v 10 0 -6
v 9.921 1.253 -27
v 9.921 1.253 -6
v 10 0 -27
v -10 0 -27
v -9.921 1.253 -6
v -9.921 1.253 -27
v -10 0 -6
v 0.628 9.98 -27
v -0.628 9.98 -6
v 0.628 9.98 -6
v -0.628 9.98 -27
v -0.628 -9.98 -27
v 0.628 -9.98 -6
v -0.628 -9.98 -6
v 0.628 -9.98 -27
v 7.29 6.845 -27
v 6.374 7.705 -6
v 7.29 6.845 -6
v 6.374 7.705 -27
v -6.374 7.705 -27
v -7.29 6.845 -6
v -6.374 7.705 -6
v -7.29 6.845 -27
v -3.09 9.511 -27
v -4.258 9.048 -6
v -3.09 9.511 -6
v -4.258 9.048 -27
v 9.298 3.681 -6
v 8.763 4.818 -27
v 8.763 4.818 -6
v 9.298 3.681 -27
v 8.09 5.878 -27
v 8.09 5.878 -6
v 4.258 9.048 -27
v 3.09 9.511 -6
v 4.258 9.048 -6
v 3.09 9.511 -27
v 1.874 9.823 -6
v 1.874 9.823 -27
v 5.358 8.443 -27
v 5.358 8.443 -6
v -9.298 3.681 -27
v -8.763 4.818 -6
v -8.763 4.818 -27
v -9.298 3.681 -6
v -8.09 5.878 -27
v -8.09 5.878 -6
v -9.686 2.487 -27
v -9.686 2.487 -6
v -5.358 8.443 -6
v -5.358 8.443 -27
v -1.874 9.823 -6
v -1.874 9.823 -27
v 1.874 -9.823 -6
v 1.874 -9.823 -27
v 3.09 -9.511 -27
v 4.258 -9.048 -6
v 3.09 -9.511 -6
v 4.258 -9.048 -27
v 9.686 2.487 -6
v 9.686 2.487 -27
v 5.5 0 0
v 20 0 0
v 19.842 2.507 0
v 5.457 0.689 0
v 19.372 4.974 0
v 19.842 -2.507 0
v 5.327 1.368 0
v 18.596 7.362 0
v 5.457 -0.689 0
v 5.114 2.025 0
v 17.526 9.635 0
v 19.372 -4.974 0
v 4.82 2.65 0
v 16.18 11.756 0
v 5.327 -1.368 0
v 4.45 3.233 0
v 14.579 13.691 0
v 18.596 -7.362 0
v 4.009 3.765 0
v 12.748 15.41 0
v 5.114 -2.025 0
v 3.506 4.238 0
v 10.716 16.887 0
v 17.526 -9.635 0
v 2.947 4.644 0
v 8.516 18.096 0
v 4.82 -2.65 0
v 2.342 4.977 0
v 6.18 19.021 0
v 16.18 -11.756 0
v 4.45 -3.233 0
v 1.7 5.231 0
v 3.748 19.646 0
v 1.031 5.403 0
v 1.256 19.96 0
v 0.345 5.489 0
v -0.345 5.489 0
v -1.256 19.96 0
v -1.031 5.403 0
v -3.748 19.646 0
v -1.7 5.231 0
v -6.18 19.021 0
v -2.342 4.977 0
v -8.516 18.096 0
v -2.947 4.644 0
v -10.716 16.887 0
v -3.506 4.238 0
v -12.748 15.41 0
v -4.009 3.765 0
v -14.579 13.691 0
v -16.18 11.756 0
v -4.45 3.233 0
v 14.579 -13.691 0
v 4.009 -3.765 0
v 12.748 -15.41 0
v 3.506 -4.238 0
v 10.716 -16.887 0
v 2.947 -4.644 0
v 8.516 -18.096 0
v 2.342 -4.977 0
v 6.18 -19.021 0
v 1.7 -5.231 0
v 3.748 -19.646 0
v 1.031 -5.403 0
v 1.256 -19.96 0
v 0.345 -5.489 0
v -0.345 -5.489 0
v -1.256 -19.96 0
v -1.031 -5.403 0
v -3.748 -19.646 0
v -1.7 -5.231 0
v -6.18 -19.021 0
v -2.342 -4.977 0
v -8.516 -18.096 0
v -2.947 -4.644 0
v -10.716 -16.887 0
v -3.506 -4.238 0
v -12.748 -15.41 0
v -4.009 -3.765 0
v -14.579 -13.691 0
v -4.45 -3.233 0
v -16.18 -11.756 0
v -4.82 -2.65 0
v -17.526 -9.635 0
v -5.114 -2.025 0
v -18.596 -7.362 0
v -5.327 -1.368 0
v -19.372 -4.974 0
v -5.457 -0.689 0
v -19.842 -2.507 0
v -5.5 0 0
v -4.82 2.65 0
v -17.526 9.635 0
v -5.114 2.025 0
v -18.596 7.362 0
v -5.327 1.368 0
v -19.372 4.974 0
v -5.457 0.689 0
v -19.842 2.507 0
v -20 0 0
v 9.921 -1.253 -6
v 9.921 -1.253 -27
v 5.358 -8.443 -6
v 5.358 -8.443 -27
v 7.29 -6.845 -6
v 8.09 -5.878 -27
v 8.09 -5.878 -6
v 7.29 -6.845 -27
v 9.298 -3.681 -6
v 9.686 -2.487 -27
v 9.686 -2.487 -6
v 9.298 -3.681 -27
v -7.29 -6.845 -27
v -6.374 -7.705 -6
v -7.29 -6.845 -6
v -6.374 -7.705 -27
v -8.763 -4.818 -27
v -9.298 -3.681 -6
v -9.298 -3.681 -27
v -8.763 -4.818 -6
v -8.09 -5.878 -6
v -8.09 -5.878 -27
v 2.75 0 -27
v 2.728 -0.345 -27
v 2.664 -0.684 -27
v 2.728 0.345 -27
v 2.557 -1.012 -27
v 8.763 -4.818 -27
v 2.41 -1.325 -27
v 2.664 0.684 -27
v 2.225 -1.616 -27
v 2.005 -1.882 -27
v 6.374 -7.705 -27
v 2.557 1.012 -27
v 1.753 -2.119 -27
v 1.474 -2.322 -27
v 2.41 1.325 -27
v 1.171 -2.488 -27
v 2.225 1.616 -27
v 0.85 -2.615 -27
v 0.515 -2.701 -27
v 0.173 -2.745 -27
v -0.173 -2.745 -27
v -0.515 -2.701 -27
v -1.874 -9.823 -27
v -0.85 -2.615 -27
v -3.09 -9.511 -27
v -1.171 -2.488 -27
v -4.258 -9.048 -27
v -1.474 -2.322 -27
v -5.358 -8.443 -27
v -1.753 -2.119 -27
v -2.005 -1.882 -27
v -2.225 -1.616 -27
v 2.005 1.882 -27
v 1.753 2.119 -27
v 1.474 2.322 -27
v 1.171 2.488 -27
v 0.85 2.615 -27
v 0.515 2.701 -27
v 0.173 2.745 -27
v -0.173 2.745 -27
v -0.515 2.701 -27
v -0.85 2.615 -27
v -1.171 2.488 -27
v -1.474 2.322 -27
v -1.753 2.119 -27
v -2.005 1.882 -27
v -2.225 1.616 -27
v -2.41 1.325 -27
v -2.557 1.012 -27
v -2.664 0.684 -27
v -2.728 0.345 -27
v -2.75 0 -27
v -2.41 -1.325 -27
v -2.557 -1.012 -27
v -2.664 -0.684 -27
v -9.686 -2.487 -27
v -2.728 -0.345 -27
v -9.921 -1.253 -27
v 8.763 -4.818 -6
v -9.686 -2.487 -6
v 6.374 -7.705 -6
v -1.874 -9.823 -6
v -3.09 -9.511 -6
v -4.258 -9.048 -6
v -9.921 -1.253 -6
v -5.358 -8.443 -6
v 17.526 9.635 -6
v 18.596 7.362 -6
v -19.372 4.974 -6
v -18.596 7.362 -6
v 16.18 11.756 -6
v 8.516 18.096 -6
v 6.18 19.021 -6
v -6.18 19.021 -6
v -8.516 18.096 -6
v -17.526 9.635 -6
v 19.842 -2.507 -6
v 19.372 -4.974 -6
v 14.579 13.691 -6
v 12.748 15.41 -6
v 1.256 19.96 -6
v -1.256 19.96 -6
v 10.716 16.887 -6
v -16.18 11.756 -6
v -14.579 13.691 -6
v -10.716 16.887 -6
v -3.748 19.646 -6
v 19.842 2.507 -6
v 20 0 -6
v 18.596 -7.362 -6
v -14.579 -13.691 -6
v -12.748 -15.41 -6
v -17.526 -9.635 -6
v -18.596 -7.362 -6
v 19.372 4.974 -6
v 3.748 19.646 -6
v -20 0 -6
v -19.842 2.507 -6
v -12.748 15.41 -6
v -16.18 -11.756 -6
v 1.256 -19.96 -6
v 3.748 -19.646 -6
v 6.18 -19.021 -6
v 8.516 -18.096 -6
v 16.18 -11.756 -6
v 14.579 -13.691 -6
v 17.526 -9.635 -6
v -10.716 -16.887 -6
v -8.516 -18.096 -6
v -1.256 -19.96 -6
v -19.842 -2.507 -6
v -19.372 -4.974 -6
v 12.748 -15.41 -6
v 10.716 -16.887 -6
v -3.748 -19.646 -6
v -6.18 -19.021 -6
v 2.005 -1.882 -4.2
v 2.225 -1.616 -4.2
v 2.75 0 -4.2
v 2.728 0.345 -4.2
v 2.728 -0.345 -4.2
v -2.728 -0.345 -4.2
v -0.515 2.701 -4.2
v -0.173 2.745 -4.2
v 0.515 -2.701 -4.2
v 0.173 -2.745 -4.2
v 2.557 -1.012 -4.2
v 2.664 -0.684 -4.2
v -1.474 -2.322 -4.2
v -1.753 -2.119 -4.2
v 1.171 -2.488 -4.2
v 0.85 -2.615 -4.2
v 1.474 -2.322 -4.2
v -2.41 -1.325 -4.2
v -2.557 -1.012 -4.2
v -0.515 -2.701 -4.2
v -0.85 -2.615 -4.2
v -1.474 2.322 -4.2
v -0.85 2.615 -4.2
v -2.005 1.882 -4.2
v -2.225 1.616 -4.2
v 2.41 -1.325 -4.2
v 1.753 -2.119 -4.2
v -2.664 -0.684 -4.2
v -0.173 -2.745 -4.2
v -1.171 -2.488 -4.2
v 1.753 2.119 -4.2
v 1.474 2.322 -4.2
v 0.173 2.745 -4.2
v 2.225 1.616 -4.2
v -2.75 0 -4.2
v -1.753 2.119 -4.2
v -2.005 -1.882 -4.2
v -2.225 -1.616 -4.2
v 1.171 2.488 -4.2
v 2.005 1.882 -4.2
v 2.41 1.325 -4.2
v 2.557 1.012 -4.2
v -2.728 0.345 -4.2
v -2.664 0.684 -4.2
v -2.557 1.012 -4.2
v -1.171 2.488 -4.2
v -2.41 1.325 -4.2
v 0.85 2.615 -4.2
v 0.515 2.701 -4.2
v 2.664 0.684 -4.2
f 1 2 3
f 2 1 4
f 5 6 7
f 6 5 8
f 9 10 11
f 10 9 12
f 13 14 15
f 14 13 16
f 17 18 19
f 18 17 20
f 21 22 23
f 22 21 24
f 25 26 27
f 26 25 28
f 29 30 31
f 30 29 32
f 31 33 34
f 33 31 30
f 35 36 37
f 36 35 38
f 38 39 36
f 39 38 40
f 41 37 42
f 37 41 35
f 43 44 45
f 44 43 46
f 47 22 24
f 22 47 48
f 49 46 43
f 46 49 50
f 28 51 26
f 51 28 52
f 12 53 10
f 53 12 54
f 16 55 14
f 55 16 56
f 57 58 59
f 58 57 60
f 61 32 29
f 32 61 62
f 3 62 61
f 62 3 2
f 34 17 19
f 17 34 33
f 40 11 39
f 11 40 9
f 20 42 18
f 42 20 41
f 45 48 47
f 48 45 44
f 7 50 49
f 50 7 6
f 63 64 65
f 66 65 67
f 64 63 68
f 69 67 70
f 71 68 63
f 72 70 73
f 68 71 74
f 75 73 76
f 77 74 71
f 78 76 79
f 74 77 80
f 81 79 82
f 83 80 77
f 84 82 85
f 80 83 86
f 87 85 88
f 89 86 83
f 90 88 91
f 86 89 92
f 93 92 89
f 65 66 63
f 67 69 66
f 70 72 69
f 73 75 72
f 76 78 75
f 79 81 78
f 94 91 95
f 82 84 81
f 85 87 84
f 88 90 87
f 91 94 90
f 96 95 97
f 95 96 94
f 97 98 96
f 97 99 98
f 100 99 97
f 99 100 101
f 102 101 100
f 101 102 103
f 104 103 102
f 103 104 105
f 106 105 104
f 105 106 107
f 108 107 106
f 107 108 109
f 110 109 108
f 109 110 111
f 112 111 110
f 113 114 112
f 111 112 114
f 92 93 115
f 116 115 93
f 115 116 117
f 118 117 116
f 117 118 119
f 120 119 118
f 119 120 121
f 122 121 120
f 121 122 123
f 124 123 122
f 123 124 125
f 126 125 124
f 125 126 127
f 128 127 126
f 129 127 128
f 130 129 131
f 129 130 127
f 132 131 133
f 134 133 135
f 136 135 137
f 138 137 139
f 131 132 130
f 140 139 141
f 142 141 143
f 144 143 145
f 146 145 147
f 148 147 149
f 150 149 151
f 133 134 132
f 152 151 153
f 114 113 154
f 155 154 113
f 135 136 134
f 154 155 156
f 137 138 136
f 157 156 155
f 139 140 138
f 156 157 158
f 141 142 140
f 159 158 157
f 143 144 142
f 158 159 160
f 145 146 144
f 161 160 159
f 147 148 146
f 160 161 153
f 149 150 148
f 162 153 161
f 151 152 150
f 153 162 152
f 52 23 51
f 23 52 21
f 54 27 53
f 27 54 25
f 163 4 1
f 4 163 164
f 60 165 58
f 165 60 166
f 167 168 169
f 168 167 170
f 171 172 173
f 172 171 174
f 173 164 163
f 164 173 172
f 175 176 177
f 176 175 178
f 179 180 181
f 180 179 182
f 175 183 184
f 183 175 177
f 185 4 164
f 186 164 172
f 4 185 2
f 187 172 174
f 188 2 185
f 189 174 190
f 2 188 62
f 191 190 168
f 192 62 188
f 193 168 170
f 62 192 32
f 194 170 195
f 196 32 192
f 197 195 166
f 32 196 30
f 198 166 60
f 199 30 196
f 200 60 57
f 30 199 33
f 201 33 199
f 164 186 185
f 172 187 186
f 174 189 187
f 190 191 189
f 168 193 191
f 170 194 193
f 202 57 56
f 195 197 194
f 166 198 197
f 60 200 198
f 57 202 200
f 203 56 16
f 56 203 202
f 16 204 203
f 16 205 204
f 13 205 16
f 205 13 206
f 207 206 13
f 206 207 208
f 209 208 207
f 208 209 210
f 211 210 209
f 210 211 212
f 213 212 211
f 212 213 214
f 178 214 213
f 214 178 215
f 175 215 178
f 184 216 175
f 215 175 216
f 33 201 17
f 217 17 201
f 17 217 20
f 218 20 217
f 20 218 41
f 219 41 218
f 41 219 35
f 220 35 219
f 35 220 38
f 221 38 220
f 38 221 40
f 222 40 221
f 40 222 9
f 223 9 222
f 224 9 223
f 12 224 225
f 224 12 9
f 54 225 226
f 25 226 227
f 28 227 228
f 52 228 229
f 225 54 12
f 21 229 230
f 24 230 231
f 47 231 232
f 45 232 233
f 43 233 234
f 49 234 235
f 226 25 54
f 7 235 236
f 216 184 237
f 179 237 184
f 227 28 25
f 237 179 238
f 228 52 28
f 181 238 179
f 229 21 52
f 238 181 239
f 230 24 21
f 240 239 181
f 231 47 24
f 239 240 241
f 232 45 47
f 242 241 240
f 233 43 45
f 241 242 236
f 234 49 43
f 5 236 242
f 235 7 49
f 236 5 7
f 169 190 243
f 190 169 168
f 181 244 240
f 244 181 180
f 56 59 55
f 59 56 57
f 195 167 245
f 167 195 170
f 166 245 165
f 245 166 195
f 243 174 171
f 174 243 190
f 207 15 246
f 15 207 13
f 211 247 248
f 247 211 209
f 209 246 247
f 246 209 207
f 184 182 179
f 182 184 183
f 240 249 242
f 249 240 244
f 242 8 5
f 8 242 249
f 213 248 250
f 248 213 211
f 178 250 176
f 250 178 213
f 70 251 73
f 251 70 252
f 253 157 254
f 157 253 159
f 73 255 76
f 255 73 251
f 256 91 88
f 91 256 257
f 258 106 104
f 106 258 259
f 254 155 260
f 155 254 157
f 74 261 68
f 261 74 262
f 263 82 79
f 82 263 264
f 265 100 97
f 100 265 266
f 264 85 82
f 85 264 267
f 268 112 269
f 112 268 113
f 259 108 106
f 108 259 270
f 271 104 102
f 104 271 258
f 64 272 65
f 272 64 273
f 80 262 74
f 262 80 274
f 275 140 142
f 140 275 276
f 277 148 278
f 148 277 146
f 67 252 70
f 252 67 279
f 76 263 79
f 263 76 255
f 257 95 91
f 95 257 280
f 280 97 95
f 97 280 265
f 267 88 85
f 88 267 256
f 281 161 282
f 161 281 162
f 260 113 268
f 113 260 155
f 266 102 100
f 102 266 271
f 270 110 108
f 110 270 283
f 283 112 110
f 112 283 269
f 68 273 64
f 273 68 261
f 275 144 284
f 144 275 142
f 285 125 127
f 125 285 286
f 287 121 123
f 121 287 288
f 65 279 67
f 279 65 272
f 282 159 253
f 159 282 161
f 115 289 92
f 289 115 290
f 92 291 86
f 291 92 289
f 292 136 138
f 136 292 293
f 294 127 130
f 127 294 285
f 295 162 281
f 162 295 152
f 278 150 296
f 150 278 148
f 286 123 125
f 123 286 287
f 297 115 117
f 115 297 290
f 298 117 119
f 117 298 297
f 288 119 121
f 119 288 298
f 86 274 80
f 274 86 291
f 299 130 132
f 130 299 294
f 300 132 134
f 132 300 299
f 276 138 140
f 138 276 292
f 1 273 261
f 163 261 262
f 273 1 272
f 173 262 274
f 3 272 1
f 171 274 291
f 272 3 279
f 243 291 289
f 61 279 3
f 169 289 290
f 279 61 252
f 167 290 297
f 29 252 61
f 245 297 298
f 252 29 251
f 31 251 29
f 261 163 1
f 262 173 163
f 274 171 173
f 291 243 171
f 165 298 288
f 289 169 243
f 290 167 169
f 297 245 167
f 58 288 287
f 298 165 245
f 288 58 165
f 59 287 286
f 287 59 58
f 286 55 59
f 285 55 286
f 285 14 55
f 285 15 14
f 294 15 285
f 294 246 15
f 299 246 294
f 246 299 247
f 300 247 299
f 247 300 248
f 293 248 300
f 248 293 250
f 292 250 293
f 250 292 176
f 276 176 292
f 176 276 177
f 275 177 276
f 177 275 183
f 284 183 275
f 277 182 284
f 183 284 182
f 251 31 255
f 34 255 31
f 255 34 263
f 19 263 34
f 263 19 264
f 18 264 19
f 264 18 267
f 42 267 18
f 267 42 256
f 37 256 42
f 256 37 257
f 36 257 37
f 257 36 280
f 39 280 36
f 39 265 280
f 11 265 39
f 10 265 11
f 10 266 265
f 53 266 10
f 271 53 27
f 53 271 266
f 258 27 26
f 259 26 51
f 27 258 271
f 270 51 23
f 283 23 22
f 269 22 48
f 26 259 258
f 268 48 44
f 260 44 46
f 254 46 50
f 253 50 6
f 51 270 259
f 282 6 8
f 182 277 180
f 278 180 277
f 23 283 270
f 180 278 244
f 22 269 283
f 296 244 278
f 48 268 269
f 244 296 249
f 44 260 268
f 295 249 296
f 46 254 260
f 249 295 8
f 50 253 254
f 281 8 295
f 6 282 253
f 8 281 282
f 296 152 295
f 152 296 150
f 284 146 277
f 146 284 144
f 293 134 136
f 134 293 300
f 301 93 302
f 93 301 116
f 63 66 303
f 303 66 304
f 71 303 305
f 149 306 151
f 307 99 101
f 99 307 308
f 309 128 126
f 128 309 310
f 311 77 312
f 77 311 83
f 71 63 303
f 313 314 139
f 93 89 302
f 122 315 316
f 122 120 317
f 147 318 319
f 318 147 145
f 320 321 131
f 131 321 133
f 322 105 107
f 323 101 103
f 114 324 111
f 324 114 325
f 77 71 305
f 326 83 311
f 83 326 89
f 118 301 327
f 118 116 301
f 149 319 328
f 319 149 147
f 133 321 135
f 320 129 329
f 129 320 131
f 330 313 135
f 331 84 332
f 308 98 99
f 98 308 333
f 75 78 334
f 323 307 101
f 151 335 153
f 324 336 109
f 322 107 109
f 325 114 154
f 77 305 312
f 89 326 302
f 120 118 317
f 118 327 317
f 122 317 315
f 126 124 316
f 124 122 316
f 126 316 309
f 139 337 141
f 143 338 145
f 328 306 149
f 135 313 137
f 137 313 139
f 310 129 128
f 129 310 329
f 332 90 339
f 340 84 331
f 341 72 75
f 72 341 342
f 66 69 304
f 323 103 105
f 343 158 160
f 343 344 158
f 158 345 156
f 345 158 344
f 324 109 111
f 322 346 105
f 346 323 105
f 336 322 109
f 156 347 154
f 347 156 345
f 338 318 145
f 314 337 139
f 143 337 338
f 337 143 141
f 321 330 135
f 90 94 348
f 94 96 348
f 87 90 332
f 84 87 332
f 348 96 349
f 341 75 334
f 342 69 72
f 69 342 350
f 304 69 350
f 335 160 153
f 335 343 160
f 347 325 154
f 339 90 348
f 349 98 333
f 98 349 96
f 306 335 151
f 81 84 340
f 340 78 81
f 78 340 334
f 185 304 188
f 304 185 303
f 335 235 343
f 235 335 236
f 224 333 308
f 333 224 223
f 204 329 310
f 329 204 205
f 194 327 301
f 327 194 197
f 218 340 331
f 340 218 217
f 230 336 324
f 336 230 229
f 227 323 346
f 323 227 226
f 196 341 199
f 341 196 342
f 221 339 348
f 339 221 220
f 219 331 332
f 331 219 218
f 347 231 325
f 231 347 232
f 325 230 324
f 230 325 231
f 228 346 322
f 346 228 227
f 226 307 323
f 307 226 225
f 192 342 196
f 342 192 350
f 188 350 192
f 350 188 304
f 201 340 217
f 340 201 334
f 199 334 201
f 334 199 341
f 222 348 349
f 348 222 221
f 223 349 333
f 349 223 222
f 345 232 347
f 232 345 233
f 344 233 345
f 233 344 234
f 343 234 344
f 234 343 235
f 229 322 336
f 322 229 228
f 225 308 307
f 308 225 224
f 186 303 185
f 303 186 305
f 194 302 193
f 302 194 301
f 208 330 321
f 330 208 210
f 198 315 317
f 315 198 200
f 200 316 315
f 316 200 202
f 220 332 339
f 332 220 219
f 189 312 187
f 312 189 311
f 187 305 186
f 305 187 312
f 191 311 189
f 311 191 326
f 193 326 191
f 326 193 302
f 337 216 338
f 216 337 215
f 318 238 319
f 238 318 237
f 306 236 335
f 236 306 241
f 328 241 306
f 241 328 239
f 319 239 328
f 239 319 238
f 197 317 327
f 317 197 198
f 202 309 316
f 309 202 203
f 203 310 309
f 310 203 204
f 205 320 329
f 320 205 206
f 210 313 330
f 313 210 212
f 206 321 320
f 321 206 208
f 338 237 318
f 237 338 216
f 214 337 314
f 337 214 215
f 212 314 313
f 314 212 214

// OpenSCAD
$fn = 50;


difference() {
	union() {
		translate(v = [0, 0, -27.0000000000]) {
			cylinder(h = 27, r = 10.0000000000);
		}
		translate(v = [0, 0, -6.0000000000]) {
			cylinder(h = 6, r = 20.0000000000);
		}
	}
	union() {
		translate(v = [0, 0, 0]) {
			rotate(a = [0, 0, 0]) {
				difference() {
					union() {
						#translate(v = [0, 0, -27.0000000000]) {
							cylinder(h = 27, r = 2.2500000000);
						}
						#translate(v = [0, 0, -4.2000000000]) {
							cylinder(h = 4.2000000000, r1 = 2.7500000000, r2 = 5.5000000000);
						}
						#translate(v = [0, 0, -27.0000000000]) {
							cylinder(h = 27, r = 2.7500000000);
						}
						#translate(v = [0, 0, -27.0000000000]) {
							cylinder(h = 27, r = 2.2500000000);
						}
					}
					union();
				}
			}
		}
	}
}
